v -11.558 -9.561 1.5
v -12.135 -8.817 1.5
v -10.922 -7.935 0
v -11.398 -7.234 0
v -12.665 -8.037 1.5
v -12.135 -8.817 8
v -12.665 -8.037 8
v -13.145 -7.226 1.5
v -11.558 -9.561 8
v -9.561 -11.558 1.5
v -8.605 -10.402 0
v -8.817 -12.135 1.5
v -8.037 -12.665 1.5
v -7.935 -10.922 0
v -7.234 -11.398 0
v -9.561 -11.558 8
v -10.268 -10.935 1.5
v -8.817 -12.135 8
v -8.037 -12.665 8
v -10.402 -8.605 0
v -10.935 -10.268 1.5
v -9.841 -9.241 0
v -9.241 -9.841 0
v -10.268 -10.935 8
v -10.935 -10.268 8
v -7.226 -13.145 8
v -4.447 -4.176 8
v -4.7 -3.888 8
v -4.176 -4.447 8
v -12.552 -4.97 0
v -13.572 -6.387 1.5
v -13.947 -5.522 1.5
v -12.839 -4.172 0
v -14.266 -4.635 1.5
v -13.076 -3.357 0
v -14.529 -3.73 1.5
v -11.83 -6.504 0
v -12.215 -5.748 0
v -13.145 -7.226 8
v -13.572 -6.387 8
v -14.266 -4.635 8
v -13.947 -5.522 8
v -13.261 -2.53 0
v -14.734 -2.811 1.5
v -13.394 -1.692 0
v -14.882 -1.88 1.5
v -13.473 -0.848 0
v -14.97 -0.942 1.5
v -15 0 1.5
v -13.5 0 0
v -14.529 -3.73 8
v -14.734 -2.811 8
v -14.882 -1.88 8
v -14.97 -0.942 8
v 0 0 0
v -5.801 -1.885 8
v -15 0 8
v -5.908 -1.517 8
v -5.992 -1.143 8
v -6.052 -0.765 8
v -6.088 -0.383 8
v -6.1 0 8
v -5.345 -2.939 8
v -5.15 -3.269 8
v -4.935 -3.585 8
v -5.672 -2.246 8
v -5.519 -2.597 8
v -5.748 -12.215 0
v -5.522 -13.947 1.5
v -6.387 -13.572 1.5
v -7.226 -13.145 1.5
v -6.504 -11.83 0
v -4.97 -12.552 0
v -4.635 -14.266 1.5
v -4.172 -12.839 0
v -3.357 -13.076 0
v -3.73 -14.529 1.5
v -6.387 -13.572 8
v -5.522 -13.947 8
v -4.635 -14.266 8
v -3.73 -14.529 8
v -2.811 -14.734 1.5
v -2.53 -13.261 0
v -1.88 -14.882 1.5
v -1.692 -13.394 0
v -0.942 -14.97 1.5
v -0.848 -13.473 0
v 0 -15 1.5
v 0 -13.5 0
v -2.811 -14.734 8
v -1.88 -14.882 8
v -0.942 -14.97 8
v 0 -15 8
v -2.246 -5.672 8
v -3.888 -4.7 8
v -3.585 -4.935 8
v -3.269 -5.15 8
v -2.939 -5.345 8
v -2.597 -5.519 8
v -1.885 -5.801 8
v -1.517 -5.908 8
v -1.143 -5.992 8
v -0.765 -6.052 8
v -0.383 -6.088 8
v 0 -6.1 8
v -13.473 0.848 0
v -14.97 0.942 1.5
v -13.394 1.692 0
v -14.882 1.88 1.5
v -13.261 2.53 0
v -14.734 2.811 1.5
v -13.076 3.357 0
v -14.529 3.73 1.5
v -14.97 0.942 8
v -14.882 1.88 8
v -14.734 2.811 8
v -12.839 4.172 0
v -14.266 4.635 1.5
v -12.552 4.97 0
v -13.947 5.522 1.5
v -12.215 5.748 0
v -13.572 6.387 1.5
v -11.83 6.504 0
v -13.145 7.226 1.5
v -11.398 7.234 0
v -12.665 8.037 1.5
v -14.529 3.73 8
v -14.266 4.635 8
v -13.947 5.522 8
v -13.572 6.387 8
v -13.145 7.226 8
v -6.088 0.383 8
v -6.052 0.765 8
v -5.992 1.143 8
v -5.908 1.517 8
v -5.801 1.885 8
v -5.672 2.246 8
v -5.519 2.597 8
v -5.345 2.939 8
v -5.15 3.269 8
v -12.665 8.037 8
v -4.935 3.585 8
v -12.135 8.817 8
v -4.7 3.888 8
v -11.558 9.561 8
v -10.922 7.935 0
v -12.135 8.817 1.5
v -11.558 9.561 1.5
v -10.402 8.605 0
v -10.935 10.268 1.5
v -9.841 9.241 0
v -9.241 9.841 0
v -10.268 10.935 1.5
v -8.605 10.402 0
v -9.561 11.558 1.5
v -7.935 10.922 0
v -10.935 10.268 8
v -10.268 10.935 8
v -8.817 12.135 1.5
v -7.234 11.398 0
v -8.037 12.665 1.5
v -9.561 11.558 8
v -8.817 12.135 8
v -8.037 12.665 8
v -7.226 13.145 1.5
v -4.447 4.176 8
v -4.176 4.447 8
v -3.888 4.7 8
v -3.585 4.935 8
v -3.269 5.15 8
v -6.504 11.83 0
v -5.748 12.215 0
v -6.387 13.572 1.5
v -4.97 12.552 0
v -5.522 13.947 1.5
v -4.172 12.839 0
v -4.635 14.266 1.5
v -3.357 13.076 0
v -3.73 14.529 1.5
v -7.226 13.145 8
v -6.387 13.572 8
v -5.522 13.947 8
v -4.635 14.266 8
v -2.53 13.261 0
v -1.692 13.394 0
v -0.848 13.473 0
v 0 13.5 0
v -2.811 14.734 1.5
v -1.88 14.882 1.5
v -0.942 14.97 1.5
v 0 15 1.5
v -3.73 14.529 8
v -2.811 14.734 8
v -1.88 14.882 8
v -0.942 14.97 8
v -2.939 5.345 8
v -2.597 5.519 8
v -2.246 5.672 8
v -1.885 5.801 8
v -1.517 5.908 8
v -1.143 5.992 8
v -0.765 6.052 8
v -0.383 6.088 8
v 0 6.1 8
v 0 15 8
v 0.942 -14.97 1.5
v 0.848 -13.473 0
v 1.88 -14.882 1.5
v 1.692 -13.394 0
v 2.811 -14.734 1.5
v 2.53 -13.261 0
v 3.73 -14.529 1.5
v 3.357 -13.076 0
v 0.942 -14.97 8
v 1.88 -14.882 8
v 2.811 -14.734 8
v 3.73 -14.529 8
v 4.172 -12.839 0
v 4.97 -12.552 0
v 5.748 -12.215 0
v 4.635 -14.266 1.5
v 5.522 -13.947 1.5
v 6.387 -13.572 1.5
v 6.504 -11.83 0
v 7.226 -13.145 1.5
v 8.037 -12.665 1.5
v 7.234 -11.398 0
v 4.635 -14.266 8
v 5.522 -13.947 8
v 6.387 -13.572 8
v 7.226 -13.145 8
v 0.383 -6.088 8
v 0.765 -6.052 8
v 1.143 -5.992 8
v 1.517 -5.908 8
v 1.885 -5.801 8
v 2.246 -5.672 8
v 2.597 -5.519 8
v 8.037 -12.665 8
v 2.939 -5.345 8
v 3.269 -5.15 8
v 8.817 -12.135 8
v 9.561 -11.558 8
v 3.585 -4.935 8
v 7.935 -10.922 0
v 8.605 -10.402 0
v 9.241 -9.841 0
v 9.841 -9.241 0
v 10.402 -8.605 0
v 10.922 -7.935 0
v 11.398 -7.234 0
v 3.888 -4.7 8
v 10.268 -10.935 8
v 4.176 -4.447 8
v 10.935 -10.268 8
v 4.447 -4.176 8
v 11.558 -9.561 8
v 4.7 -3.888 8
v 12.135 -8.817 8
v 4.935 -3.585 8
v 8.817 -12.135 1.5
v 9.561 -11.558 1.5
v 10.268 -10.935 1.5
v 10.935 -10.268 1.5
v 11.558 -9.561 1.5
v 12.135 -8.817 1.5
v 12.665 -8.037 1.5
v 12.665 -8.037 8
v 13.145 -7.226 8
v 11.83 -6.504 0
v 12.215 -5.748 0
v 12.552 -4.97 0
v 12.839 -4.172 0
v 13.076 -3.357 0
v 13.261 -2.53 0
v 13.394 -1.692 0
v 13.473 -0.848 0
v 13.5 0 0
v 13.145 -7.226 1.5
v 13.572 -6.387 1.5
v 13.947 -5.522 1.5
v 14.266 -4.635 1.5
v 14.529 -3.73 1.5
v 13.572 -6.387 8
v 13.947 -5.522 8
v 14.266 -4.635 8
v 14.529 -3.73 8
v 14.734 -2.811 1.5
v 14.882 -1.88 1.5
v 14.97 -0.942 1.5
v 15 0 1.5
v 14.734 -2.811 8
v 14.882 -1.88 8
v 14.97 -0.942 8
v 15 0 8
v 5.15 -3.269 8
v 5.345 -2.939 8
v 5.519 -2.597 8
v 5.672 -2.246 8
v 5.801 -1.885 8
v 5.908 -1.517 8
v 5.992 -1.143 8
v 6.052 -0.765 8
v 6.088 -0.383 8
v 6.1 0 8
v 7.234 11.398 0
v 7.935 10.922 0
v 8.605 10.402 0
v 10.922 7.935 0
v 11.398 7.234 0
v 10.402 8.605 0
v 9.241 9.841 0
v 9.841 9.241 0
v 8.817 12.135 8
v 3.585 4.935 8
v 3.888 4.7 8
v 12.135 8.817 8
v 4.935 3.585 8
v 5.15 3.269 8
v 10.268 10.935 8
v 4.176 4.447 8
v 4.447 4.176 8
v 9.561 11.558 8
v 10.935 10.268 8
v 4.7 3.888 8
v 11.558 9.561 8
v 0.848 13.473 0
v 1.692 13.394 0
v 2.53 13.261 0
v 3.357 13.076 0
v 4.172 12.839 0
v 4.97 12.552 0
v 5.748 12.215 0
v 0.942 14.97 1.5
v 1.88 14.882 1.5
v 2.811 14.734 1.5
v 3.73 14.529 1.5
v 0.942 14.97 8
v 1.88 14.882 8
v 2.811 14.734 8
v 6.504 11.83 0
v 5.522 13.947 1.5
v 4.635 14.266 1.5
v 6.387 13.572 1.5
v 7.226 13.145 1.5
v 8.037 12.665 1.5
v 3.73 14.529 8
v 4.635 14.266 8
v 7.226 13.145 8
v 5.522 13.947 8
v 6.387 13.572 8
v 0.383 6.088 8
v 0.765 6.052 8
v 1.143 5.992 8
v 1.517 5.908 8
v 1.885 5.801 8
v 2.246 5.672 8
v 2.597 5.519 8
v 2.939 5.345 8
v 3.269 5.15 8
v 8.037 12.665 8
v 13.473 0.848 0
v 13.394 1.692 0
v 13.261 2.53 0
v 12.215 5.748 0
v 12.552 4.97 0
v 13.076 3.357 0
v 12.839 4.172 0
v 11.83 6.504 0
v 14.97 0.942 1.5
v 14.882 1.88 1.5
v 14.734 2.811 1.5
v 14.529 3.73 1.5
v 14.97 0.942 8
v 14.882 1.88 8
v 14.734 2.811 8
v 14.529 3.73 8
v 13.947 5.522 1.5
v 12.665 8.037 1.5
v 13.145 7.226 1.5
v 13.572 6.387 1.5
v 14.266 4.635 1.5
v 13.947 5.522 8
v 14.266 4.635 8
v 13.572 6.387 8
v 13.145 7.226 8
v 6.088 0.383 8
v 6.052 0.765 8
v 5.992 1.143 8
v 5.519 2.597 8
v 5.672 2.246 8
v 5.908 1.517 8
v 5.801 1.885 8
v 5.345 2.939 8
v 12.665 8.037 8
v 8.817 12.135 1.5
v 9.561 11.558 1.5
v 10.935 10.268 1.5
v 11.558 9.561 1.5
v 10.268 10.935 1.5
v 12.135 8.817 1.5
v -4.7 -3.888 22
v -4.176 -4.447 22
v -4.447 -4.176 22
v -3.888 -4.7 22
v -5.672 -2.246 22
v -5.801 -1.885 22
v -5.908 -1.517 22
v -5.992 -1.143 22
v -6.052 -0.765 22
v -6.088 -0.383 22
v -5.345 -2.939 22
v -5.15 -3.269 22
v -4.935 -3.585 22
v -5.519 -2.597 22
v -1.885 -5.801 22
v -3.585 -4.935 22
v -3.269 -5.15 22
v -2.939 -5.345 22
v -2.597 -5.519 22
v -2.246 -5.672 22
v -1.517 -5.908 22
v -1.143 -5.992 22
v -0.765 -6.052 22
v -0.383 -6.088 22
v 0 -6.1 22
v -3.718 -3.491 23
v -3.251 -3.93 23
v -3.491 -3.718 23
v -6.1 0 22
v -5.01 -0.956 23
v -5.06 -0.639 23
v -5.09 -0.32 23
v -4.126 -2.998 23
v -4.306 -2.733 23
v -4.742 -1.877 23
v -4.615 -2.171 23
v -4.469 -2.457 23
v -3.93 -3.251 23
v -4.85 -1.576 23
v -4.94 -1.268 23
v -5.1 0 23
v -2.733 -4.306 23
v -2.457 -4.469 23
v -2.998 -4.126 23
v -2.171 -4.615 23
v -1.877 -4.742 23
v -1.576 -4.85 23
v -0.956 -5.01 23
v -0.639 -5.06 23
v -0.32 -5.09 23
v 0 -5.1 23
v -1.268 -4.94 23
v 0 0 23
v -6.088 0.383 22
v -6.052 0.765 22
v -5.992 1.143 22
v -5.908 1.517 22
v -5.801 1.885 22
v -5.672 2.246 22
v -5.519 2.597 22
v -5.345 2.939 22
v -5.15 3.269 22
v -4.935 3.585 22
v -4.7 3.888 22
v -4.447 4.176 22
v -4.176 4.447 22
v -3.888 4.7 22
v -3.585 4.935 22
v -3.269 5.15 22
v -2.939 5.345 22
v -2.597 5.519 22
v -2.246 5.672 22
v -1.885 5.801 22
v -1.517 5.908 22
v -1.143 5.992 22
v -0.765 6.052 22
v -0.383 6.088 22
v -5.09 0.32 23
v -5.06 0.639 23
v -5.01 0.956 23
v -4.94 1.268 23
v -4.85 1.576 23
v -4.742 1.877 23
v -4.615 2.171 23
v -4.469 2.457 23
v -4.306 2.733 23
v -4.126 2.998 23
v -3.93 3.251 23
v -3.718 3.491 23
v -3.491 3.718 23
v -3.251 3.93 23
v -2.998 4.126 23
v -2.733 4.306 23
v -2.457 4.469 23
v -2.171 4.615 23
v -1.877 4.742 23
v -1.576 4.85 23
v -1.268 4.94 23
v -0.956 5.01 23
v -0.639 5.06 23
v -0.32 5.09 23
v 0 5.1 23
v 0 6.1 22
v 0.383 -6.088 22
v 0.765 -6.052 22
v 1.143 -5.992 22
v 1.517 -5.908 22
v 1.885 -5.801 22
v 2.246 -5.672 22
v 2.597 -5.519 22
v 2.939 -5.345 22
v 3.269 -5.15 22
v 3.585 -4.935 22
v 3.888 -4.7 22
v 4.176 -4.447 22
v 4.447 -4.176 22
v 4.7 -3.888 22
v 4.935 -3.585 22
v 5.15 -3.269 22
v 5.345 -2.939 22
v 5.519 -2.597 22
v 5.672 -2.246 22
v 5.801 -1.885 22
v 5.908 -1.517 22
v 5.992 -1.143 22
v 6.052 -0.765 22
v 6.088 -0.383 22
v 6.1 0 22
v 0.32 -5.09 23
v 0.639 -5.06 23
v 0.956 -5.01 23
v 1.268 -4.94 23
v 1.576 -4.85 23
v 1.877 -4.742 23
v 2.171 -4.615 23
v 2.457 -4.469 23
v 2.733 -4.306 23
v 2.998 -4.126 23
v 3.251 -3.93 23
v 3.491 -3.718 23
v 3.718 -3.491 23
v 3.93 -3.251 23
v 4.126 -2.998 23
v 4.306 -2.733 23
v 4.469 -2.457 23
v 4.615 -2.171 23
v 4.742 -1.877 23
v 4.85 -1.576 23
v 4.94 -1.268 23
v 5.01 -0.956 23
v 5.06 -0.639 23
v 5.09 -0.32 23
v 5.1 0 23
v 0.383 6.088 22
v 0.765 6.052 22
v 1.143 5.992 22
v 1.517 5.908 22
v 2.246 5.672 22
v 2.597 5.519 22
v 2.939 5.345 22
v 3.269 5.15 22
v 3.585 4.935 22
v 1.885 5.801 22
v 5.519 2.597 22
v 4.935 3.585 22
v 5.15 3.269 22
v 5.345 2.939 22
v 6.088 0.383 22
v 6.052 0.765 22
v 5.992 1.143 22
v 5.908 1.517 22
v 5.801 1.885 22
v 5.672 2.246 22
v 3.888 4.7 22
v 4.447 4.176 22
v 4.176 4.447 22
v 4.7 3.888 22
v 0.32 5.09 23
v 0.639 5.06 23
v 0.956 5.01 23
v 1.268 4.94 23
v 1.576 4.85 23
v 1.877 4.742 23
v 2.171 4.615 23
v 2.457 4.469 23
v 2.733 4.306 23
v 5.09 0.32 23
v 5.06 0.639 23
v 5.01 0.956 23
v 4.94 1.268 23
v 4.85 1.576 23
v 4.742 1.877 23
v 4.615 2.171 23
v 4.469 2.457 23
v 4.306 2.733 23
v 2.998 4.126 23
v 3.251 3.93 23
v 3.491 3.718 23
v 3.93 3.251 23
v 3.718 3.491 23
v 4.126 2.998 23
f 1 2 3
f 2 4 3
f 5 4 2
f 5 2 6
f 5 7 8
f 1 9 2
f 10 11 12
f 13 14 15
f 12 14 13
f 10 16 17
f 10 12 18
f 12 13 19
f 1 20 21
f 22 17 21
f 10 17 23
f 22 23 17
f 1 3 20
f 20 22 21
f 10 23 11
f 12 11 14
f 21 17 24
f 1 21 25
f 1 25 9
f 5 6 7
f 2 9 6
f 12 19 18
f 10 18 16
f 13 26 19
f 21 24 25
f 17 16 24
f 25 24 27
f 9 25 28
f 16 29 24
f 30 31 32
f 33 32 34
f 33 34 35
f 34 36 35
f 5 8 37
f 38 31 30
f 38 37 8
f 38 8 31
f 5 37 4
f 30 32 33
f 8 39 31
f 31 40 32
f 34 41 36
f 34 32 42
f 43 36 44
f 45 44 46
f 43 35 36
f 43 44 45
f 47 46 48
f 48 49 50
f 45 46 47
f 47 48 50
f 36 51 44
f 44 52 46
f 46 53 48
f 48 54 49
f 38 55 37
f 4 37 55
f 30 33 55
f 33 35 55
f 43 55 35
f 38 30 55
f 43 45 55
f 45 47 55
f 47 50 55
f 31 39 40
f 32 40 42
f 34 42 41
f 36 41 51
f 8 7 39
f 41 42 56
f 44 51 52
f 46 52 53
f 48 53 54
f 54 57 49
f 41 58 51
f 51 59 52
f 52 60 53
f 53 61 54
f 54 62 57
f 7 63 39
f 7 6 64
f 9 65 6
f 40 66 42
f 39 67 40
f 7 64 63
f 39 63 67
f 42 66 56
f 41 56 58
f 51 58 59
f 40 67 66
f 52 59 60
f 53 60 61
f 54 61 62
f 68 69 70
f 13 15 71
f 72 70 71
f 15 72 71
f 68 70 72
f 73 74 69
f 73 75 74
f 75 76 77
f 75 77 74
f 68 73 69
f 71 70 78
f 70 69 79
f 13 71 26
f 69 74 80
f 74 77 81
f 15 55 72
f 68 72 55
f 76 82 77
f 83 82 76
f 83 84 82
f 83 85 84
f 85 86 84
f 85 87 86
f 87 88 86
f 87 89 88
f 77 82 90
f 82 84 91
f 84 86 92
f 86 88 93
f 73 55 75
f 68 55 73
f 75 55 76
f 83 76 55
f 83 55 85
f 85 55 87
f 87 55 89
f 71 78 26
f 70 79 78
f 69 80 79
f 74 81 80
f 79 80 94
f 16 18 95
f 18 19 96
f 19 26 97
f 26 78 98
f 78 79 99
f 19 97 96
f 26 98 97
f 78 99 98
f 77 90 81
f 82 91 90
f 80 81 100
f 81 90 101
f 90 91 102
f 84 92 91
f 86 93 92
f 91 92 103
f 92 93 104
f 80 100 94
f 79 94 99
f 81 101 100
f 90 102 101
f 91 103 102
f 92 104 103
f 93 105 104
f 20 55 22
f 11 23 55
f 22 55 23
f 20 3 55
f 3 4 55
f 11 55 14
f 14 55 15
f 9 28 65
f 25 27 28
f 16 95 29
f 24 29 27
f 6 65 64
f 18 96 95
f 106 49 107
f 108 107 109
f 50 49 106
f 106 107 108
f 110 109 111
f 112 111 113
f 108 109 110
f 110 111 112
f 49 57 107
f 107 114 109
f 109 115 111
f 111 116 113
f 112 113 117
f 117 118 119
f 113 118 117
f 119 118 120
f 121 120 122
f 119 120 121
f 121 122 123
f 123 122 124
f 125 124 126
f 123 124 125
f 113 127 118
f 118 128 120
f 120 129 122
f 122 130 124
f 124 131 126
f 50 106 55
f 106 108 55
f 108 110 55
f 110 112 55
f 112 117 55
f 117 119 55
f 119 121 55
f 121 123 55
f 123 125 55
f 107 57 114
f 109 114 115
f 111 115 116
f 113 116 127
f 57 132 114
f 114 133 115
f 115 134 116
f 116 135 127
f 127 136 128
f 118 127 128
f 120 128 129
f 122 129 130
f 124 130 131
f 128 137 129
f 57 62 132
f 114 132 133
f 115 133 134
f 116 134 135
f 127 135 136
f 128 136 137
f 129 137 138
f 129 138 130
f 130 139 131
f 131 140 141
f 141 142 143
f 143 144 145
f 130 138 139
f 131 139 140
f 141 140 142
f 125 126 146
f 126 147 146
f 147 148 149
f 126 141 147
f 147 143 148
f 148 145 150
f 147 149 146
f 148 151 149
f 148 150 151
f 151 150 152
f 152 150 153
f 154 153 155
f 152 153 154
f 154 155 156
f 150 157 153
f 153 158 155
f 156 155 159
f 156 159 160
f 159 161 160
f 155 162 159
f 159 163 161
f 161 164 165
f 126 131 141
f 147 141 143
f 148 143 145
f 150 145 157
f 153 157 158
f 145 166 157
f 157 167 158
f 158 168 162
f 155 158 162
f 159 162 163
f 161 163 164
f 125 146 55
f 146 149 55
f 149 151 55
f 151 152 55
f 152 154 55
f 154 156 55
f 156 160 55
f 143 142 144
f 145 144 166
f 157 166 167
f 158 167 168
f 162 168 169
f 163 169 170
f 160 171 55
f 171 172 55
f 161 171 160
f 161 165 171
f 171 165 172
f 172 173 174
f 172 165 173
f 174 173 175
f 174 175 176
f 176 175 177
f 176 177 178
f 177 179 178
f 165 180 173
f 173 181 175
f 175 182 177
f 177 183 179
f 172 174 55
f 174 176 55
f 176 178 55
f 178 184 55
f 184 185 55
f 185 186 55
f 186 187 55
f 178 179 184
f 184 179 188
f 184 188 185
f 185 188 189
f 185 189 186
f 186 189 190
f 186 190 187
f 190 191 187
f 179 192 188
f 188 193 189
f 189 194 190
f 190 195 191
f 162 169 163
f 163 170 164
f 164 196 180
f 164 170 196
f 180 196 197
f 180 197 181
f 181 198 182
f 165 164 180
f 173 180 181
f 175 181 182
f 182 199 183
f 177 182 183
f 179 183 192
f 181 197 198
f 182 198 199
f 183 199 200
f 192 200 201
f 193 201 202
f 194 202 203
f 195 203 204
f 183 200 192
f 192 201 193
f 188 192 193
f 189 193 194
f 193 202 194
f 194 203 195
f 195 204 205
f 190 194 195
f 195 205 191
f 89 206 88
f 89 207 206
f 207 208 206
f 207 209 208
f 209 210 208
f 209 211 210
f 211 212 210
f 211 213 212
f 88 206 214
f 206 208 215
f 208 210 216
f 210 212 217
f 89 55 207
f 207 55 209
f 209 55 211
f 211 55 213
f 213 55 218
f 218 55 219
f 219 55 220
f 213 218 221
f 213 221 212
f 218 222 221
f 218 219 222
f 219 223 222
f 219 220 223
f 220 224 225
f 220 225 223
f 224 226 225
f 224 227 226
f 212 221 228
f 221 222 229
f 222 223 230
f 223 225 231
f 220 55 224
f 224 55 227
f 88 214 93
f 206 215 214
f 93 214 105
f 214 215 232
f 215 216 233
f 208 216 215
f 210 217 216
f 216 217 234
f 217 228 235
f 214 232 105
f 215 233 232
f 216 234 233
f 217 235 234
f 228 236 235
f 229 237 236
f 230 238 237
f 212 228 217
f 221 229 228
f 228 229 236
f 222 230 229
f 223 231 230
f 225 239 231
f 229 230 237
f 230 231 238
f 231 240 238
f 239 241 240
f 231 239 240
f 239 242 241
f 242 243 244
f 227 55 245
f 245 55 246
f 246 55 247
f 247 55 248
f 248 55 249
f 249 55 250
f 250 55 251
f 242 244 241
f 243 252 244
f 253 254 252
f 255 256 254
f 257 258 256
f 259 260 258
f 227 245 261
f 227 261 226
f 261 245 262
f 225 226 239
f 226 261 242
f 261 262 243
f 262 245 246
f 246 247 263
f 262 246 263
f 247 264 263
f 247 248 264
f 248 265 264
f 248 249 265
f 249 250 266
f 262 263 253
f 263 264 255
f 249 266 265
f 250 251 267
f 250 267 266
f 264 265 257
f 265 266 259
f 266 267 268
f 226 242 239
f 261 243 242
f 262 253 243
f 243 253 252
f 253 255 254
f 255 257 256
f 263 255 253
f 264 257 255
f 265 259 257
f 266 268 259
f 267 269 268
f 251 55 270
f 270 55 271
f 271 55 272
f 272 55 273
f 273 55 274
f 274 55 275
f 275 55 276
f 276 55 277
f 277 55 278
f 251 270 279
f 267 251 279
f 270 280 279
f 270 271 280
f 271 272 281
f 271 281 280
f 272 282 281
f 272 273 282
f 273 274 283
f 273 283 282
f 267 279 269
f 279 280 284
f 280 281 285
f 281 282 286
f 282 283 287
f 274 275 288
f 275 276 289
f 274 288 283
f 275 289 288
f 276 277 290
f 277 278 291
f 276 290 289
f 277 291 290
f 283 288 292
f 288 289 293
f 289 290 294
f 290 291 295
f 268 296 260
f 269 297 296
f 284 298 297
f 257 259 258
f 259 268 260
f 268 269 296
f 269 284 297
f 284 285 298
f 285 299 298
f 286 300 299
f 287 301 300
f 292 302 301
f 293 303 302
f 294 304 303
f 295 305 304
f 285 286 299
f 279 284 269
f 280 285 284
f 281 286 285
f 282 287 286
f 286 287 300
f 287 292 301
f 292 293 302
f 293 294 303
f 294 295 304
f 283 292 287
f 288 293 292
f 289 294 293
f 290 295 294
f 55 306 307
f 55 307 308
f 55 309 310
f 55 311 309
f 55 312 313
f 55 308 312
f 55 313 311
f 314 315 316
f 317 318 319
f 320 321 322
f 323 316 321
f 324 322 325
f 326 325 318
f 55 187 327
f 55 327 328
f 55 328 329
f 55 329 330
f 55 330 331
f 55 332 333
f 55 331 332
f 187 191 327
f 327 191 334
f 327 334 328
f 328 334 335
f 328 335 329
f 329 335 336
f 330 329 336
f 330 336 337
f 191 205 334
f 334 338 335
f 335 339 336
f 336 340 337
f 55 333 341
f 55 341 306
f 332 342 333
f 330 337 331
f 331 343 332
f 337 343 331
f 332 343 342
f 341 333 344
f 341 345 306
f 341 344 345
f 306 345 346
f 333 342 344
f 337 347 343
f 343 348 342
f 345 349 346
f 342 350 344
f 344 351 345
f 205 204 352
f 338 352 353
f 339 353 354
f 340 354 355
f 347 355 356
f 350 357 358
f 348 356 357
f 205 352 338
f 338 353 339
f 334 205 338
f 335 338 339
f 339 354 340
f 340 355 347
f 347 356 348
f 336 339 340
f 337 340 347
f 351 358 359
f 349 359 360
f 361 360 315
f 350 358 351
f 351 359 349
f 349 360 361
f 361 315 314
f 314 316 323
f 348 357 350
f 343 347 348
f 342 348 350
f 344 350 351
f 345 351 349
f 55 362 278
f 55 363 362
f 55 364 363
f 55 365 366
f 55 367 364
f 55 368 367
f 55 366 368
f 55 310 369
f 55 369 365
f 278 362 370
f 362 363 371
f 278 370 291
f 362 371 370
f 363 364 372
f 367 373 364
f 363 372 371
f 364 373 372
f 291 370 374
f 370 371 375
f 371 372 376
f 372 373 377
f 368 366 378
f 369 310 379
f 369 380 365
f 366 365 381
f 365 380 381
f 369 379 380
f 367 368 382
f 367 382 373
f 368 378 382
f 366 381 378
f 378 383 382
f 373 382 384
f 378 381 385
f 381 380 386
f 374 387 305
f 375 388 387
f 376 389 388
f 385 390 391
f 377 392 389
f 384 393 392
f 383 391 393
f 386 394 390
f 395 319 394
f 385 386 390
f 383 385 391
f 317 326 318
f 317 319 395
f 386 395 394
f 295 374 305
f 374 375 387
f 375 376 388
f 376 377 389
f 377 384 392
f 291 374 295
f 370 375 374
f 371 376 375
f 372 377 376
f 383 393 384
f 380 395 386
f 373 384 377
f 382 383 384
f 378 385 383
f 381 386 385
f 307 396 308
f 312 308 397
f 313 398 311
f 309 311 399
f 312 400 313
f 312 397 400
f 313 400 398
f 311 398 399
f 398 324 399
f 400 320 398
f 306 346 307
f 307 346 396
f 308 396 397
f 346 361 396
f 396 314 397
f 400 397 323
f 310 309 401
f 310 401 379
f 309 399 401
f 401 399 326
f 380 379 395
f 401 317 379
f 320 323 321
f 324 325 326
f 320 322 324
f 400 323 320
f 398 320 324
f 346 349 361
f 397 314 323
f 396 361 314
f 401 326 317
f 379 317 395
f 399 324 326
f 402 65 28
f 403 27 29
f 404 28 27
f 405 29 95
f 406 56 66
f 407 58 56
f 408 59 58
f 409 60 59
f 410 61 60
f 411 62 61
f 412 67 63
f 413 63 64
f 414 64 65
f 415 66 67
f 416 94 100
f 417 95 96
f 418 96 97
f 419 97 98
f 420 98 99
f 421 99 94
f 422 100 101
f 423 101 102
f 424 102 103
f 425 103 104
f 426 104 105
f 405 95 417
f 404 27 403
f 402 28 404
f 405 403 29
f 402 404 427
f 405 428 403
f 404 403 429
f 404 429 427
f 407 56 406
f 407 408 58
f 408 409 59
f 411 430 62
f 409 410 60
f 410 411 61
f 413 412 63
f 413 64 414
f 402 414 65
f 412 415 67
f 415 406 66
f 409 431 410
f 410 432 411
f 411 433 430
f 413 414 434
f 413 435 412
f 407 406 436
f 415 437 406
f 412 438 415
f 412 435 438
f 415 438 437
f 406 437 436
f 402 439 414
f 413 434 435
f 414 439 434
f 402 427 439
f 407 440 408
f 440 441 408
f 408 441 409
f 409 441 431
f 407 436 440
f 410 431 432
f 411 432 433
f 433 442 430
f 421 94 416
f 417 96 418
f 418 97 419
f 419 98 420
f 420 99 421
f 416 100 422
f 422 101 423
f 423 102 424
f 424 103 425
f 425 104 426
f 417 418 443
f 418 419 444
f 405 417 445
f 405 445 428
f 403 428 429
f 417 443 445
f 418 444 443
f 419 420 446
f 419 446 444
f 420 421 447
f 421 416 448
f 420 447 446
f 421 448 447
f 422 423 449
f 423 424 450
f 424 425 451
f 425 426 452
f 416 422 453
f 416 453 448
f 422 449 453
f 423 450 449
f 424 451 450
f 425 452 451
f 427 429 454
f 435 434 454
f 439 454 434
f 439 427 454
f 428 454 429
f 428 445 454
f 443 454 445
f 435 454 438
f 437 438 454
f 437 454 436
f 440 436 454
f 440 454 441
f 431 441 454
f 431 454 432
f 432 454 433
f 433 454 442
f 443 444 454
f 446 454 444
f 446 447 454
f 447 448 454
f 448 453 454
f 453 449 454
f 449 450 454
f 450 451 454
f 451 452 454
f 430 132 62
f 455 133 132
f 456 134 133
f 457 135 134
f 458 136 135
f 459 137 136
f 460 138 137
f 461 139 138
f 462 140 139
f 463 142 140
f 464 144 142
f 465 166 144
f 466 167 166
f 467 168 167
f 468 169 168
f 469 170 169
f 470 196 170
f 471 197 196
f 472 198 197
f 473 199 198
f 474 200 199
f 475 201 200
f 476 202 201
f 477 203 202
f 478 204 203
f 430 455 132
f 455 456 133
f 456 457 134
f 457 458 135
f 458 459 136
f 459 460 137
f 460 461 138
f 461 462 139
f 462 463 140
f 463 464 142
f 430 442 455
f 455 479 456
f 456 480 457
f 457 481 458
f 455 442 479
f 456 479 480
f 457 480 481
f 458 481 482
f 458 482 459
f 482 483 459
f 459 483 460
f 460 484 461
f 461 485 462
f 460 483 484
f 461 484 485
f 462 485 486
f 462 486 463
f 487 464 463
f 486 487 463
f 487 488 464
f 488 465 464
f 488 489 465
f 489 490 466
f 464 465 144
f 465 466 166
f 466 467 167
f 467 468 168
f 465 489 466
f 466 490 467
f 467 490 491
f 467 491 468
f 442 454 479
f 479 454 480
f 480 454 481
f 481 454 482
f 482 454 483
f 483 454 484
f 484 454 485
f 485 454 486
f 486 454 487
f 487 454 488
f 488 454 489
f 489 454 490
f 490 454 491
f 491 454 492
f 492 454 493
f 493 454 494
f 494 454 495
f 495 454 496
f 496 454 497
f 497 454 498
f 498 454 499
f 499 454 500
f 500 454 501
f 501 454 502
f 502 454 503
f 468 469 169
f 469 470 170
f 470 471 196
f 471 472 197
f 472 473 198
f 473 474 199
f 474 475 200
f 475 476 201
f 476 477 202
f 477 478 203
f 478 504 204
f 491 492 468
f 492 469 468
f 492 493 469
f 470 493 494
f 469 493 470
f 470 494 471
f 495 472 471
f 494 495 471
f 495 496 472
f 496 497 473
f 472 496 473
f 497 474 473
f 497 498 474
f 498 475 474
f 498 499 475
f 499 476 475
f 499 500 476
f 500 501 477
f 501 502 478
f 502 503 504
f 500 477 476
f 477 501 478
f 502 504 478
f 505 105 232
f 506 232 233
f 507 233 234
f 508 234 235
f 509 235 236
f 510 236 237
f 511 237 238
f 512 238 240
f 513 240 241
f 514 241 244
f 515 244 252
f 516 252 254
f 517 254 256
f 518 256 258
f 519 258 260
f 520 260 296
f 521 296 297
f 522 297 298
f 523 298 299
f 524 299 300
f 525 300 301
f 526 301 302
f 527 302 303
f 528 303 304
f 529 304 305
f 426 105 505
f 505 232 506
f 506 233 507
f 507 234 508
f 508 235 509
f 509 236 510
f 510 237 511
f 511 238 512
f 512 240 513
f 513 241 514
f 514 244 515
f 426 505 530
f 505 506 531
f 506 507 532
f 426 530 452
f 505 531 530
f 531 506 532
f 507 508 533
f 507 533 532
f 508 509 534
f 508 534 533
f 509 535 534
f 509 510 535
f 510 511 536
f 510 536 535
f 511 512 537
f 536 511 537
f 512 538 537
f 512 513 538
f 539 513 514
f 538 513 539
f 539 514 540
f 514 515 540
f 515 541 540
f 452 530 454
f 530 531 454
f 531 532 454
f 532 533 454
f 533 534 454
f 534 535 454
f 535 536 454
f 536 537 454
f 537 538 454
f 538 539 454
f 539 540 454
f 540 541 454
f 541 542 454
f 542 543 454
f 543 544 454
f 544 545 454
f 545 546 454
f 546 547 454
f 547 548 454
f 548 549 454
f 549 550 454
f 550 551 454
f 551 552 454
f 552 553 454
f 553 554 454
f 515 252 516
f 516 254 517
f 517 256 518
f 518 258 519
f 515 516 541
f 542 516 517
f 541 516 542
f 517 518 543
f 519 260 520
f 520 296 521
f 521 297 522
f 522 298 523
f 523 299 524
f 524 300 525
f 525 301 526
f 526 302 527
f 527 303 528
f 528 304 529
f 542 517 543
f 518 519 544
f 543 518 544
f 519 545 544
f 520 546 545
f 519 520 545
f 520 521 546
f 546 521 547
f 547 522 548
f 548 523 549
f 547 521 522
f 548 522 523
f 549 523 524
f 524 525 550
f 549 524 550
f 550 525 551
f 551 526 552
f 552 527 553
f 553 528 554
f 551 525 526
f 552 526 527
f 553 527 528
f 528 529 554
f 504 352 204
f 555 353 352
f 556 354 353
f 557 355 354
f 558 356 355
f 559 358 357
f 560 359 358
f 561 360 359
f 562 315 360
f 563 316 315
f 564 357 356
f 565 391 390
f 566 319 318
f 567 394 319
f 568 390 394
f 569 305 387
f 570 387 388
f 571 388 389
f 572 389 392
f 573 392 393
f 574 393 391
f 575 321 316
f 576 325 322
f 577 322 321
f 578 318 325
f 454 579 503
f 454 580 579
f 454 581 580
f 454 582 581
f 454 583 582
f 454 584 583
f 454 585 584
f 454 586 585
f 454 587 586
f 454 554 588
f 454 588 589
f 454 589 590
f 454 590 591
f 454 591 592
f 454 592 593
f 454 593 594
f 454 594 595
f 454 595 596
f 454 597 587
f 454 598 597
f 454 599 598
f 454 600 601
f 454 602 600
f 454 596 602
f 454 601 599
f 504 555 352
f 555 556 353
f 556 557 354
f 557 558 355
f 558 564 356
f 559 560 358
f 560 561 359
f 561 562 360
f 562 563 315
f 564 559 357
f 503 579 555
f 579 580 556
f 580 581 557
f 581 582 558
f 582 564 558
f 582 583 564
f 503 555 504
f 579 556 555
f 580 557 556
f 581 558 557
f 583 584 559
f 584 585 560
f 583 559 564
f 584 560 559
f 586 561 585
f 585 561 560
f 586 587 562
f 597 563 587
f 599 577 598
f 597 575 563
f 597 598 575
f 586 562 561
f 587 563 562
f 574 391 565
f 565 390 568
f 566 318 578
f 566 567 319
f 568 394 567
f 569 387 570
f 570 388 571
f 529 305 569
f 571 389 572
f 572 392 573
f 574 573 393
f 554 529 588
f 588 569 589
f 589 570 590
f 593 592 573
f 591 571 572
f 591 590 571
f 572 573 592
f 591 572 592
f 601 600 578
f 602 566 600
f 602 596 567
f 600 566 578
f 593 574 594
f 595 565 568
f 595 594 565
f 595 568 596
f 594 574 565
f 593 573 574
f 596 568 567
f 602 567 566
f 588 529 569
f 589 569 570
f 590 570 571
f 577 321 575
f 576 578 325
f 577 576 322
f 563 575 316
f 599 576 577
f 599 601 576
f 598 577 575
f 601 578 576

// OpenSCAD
// ============================================================
// Foot with post — a TPU foot that plugs into a socket in the
// bottom of whatever it is holding up
//
// Two stacked cylinders on one axis. The lower, wider one is
// the foot: it stands on the floor, lifts the object by its
// own height, and being TPU it grips and it damps. The upper,
// narrower one is the post: it is a plug for the hole already
// in the bottom of the object, and it is the only thing
// holding the foot on.
//
// The step between the two is the shoulder, and it is what the
// object actually rests on. The post carries no load down the
// axis — it is there so the foot cannot walk out from under
// the object or fall off when the thing is picked up.
//
// The foot's bottom rim is chamfered. TPU squashes its first
// layer more than a rigid filament does, and a foot is the one
// part where a flared elephant foot is guaranteed to be the
// surface bearing on the floor. The chamfer gives that squash
// somewhere to go.
//
// The post's top rim is chamfered too, for a different reason:
// it is a lead-in. A soft post pushed at a hole it is not
// quite lined up with folds over instead of entering, so the
// tip is made smaller than the hole and grows into it.
//
// The socket is a hole that opens at the bottom face of the
// object, so the caliper's inside jaws and depth rod both
// reach it. The post is never measured — it is the socket plus
// an interference knob, because TPU is fitted by squeezing it
// rather than by clearing it.
//
// Modeled in its print orientation: foot on the plate, post
// pointing up.
//
// PRINT NOTES:
// - TPU, no supports needed. Print as modeled, foot down.
// - Nothing in the part hangs. The post's top chamfer closes
//   inward, the shoulder faces up, and the only downward face
//   is the foot's bottom chamfer at 45 deg, in the first
//   millimetre or two off the plate.
// - Both chamfers are written with their radial run equal to
//   their rise, so no value either knob is given can turn one
//   into an overhang.
// - Slow it down. TPU at speed under-extrudes on the small
//   circumference of the post, and the post is the part that
//   has to hold.
// - Infill is the squish. A foot printed at 15% gives under
//   weight and one printed solid barely does, and neither is
//   wrong — it is what the foot is for. 3 perimeters either
//   way, so the post has walls rather than infill in it.
// - Print the set together and they come out the same height.
//   Printed one at a time they will not, quite.
// ============================================================

// ===== MEASURE THESE ON THE OBJECT THE FOOT GOES UNDER =====
// The socket opens at the bottom face, so both of these are reachable with an
// ordinary caliper. Each names the caliper it needs by the size printed on the
// tool: a 6 in caliper stops at 150 mm, an 8 in at 200 mm, a 12 in at 300 mm

// Diameter of the socket in the bottom of the object (mm) — inside jaws in the
// hole, 6 in caliper. Open the jaws against the wall of the hole and take it at
// a couple of rotations; an injection-molded socket is often slightly oval, and
// here it is the SMALLEST reading that matters, since that is what the post has
// to pass
socket_d = 12;

// Depth of that socket (mm) — depth rod at the tail of the caliper, down the
// hole until it stops, 6 in caliper. Only used to check that the post is not
// longer than the hole it goes in
socket_depth = 20;

// ===== DECIDE THESE =====
// Choices, not measurements — the foot is whatever these make it

// Diameter of the foot (mm). The contact patch on the floor, and the shoulder
// the object sits on. Wider spreads the load and resists rocking; it also has
// to clear whatever else is on the underside of the object
foot_d = 30;

// Height of the foot (mm). How far the object is lifted, and how much rubber
// there is to squash under it
foot_h = 8;

// Height of the post (mm). How far it reaches into the socket. It grips over
// its whole length, so most of the socket is worth using — the assert below
// keeps it from bottoming out before the shoulder seats
post_h = 15;

// ===== TUNE THESE =====
post_interference = 0.2; // ADDED to the socket diameter (mm) — the post is printed oversize and squeezed in. Raise for more grip, drop toward 0 if it will not start, go negative only if the socket is soft too
foot_chamfer = 1.5; // Break on the foot's bottom rim (mm) — room for TPU to spread into on the first layer
post_chamfer = 1; // Lead-in on the post's top rim (mm) — how far off center the post can start and still find the hole

// How far the post's base is buried in the foot (mm). Nothing to do with the
// fit — it is there so the union has material to work with rather than two
// faces landing on the same plane
post_overlap = 0.01;

$fn = 100;

// ===== DERIVED =====
post_d = socket_d + post_interference;
total_height = foot_h + post_h;

// Width of the ring the object rests on. This is the whole load path from the
// object into the foot, and it is what a foot barely wider than its own post
// runs out of
shoulder = (foot_d - post_d) / 2;

// Flat left on the floor once the chamfer has taken the rim. The foot stands on
// this and the first layer is this wide, so a generous chamfer on a narrow foot
// costs bed adhesion on the one part that is nothing but bed adhesion
foot_contact_d = foot_d - 2 * foot_chamfer;

// Air left at the bottom of the socket with the shoulder seated. It has to be
// positive or the post reaches the end of the hole first and holds the object
// off its own foot
seat_gap = socket_depth - post_h;

echo(str("overall height = ", total_height, " mm"));
echo(str("post diameter = ", post_d, " mm into a ", socket_d, " mm socket"));
echo(str("shoulder ring = ", shoulder, " mm"));
echo(str("contact patch on the floor = ", foot_contact_d, " mm across"));
echo(str("air under the post when seated = ", seat_gap, " mm"));

assert(foot_h > 0, "foot_h has to be positive — there is no foot without one");
assert(post_h > 0, "post_h has to be positive — there is nothing holding the foot on without one");
assert(post_d > 0, "post_interference has closed the post — it cannot be more negative than the socket is wide");
assert(shoulder > 0, "the foot is no wider than the post — widen foot_d, or this is just a plug");
assert(foot_contact_d > 0, "the bottom chamfer has eaten the whole contact patch — reduce foot_chamfer or widen foot_d");
assert(foot_chamfer < foot_h, "the bottom chamfer is taller than the foot — reduce foot_chamfer or raise foot_h");
assert(2 * post_chamfer < post_d, "the top chamfer has closed the post to a point — reduce post_chamfer");
assert(post_overlap > 0 && post_overlap < foot_h, "post_overlap has to be a sliver, and it has to fit inside the foot");
assert(post_chamfer < post_h, "the lead-in is longer than the post — reduce post_chamfer or raise post_h");
assert(seat_gap > 0, "the post is longer than the socket is deep — it bottoms out before the shoulder seats, so reduce post_h");

// The foot: a cylinder standing on the plate with its bottom rim broken. x is
// radius out from the axis, y is height up from the floor. The chamfer moves
// out and up by the same amount, so it sits at 45 deg whatever foot_chamfer
// says
module foot_body() {
  r = foot_d / 2;
  rotate_extrude()
    polygon([
      [0, 0],
      [r - foot_chamfer, 0],
      [r, foot_chamfer],
      [r, foot_h],
      [0, foot_h],
    ]);
}

// The post: a narrower cylinder stacked on the foot, its top rim broken the
// same way to lead it into the socket. Its base sits inside the foot rather
// than on top of it, so the two solids meet in material instead of on a
// coincident face
module post_body() {
  r = post_d / 2;
  translate([0, 0, foot_h - post_overlap])
    rotate_extrude()
      polygon([
        [0, 0],
        [r, 0],
        [r, post_h + post_overlap - post_chamfer],
        [r - post_chamfer, post_h + post_overlap],
        [0, post_h + post_overlap],
      ]);
}

module foot_with_post() {
  union() {
    foot_body();
    post_body();
  }
}

foot_with_post();
